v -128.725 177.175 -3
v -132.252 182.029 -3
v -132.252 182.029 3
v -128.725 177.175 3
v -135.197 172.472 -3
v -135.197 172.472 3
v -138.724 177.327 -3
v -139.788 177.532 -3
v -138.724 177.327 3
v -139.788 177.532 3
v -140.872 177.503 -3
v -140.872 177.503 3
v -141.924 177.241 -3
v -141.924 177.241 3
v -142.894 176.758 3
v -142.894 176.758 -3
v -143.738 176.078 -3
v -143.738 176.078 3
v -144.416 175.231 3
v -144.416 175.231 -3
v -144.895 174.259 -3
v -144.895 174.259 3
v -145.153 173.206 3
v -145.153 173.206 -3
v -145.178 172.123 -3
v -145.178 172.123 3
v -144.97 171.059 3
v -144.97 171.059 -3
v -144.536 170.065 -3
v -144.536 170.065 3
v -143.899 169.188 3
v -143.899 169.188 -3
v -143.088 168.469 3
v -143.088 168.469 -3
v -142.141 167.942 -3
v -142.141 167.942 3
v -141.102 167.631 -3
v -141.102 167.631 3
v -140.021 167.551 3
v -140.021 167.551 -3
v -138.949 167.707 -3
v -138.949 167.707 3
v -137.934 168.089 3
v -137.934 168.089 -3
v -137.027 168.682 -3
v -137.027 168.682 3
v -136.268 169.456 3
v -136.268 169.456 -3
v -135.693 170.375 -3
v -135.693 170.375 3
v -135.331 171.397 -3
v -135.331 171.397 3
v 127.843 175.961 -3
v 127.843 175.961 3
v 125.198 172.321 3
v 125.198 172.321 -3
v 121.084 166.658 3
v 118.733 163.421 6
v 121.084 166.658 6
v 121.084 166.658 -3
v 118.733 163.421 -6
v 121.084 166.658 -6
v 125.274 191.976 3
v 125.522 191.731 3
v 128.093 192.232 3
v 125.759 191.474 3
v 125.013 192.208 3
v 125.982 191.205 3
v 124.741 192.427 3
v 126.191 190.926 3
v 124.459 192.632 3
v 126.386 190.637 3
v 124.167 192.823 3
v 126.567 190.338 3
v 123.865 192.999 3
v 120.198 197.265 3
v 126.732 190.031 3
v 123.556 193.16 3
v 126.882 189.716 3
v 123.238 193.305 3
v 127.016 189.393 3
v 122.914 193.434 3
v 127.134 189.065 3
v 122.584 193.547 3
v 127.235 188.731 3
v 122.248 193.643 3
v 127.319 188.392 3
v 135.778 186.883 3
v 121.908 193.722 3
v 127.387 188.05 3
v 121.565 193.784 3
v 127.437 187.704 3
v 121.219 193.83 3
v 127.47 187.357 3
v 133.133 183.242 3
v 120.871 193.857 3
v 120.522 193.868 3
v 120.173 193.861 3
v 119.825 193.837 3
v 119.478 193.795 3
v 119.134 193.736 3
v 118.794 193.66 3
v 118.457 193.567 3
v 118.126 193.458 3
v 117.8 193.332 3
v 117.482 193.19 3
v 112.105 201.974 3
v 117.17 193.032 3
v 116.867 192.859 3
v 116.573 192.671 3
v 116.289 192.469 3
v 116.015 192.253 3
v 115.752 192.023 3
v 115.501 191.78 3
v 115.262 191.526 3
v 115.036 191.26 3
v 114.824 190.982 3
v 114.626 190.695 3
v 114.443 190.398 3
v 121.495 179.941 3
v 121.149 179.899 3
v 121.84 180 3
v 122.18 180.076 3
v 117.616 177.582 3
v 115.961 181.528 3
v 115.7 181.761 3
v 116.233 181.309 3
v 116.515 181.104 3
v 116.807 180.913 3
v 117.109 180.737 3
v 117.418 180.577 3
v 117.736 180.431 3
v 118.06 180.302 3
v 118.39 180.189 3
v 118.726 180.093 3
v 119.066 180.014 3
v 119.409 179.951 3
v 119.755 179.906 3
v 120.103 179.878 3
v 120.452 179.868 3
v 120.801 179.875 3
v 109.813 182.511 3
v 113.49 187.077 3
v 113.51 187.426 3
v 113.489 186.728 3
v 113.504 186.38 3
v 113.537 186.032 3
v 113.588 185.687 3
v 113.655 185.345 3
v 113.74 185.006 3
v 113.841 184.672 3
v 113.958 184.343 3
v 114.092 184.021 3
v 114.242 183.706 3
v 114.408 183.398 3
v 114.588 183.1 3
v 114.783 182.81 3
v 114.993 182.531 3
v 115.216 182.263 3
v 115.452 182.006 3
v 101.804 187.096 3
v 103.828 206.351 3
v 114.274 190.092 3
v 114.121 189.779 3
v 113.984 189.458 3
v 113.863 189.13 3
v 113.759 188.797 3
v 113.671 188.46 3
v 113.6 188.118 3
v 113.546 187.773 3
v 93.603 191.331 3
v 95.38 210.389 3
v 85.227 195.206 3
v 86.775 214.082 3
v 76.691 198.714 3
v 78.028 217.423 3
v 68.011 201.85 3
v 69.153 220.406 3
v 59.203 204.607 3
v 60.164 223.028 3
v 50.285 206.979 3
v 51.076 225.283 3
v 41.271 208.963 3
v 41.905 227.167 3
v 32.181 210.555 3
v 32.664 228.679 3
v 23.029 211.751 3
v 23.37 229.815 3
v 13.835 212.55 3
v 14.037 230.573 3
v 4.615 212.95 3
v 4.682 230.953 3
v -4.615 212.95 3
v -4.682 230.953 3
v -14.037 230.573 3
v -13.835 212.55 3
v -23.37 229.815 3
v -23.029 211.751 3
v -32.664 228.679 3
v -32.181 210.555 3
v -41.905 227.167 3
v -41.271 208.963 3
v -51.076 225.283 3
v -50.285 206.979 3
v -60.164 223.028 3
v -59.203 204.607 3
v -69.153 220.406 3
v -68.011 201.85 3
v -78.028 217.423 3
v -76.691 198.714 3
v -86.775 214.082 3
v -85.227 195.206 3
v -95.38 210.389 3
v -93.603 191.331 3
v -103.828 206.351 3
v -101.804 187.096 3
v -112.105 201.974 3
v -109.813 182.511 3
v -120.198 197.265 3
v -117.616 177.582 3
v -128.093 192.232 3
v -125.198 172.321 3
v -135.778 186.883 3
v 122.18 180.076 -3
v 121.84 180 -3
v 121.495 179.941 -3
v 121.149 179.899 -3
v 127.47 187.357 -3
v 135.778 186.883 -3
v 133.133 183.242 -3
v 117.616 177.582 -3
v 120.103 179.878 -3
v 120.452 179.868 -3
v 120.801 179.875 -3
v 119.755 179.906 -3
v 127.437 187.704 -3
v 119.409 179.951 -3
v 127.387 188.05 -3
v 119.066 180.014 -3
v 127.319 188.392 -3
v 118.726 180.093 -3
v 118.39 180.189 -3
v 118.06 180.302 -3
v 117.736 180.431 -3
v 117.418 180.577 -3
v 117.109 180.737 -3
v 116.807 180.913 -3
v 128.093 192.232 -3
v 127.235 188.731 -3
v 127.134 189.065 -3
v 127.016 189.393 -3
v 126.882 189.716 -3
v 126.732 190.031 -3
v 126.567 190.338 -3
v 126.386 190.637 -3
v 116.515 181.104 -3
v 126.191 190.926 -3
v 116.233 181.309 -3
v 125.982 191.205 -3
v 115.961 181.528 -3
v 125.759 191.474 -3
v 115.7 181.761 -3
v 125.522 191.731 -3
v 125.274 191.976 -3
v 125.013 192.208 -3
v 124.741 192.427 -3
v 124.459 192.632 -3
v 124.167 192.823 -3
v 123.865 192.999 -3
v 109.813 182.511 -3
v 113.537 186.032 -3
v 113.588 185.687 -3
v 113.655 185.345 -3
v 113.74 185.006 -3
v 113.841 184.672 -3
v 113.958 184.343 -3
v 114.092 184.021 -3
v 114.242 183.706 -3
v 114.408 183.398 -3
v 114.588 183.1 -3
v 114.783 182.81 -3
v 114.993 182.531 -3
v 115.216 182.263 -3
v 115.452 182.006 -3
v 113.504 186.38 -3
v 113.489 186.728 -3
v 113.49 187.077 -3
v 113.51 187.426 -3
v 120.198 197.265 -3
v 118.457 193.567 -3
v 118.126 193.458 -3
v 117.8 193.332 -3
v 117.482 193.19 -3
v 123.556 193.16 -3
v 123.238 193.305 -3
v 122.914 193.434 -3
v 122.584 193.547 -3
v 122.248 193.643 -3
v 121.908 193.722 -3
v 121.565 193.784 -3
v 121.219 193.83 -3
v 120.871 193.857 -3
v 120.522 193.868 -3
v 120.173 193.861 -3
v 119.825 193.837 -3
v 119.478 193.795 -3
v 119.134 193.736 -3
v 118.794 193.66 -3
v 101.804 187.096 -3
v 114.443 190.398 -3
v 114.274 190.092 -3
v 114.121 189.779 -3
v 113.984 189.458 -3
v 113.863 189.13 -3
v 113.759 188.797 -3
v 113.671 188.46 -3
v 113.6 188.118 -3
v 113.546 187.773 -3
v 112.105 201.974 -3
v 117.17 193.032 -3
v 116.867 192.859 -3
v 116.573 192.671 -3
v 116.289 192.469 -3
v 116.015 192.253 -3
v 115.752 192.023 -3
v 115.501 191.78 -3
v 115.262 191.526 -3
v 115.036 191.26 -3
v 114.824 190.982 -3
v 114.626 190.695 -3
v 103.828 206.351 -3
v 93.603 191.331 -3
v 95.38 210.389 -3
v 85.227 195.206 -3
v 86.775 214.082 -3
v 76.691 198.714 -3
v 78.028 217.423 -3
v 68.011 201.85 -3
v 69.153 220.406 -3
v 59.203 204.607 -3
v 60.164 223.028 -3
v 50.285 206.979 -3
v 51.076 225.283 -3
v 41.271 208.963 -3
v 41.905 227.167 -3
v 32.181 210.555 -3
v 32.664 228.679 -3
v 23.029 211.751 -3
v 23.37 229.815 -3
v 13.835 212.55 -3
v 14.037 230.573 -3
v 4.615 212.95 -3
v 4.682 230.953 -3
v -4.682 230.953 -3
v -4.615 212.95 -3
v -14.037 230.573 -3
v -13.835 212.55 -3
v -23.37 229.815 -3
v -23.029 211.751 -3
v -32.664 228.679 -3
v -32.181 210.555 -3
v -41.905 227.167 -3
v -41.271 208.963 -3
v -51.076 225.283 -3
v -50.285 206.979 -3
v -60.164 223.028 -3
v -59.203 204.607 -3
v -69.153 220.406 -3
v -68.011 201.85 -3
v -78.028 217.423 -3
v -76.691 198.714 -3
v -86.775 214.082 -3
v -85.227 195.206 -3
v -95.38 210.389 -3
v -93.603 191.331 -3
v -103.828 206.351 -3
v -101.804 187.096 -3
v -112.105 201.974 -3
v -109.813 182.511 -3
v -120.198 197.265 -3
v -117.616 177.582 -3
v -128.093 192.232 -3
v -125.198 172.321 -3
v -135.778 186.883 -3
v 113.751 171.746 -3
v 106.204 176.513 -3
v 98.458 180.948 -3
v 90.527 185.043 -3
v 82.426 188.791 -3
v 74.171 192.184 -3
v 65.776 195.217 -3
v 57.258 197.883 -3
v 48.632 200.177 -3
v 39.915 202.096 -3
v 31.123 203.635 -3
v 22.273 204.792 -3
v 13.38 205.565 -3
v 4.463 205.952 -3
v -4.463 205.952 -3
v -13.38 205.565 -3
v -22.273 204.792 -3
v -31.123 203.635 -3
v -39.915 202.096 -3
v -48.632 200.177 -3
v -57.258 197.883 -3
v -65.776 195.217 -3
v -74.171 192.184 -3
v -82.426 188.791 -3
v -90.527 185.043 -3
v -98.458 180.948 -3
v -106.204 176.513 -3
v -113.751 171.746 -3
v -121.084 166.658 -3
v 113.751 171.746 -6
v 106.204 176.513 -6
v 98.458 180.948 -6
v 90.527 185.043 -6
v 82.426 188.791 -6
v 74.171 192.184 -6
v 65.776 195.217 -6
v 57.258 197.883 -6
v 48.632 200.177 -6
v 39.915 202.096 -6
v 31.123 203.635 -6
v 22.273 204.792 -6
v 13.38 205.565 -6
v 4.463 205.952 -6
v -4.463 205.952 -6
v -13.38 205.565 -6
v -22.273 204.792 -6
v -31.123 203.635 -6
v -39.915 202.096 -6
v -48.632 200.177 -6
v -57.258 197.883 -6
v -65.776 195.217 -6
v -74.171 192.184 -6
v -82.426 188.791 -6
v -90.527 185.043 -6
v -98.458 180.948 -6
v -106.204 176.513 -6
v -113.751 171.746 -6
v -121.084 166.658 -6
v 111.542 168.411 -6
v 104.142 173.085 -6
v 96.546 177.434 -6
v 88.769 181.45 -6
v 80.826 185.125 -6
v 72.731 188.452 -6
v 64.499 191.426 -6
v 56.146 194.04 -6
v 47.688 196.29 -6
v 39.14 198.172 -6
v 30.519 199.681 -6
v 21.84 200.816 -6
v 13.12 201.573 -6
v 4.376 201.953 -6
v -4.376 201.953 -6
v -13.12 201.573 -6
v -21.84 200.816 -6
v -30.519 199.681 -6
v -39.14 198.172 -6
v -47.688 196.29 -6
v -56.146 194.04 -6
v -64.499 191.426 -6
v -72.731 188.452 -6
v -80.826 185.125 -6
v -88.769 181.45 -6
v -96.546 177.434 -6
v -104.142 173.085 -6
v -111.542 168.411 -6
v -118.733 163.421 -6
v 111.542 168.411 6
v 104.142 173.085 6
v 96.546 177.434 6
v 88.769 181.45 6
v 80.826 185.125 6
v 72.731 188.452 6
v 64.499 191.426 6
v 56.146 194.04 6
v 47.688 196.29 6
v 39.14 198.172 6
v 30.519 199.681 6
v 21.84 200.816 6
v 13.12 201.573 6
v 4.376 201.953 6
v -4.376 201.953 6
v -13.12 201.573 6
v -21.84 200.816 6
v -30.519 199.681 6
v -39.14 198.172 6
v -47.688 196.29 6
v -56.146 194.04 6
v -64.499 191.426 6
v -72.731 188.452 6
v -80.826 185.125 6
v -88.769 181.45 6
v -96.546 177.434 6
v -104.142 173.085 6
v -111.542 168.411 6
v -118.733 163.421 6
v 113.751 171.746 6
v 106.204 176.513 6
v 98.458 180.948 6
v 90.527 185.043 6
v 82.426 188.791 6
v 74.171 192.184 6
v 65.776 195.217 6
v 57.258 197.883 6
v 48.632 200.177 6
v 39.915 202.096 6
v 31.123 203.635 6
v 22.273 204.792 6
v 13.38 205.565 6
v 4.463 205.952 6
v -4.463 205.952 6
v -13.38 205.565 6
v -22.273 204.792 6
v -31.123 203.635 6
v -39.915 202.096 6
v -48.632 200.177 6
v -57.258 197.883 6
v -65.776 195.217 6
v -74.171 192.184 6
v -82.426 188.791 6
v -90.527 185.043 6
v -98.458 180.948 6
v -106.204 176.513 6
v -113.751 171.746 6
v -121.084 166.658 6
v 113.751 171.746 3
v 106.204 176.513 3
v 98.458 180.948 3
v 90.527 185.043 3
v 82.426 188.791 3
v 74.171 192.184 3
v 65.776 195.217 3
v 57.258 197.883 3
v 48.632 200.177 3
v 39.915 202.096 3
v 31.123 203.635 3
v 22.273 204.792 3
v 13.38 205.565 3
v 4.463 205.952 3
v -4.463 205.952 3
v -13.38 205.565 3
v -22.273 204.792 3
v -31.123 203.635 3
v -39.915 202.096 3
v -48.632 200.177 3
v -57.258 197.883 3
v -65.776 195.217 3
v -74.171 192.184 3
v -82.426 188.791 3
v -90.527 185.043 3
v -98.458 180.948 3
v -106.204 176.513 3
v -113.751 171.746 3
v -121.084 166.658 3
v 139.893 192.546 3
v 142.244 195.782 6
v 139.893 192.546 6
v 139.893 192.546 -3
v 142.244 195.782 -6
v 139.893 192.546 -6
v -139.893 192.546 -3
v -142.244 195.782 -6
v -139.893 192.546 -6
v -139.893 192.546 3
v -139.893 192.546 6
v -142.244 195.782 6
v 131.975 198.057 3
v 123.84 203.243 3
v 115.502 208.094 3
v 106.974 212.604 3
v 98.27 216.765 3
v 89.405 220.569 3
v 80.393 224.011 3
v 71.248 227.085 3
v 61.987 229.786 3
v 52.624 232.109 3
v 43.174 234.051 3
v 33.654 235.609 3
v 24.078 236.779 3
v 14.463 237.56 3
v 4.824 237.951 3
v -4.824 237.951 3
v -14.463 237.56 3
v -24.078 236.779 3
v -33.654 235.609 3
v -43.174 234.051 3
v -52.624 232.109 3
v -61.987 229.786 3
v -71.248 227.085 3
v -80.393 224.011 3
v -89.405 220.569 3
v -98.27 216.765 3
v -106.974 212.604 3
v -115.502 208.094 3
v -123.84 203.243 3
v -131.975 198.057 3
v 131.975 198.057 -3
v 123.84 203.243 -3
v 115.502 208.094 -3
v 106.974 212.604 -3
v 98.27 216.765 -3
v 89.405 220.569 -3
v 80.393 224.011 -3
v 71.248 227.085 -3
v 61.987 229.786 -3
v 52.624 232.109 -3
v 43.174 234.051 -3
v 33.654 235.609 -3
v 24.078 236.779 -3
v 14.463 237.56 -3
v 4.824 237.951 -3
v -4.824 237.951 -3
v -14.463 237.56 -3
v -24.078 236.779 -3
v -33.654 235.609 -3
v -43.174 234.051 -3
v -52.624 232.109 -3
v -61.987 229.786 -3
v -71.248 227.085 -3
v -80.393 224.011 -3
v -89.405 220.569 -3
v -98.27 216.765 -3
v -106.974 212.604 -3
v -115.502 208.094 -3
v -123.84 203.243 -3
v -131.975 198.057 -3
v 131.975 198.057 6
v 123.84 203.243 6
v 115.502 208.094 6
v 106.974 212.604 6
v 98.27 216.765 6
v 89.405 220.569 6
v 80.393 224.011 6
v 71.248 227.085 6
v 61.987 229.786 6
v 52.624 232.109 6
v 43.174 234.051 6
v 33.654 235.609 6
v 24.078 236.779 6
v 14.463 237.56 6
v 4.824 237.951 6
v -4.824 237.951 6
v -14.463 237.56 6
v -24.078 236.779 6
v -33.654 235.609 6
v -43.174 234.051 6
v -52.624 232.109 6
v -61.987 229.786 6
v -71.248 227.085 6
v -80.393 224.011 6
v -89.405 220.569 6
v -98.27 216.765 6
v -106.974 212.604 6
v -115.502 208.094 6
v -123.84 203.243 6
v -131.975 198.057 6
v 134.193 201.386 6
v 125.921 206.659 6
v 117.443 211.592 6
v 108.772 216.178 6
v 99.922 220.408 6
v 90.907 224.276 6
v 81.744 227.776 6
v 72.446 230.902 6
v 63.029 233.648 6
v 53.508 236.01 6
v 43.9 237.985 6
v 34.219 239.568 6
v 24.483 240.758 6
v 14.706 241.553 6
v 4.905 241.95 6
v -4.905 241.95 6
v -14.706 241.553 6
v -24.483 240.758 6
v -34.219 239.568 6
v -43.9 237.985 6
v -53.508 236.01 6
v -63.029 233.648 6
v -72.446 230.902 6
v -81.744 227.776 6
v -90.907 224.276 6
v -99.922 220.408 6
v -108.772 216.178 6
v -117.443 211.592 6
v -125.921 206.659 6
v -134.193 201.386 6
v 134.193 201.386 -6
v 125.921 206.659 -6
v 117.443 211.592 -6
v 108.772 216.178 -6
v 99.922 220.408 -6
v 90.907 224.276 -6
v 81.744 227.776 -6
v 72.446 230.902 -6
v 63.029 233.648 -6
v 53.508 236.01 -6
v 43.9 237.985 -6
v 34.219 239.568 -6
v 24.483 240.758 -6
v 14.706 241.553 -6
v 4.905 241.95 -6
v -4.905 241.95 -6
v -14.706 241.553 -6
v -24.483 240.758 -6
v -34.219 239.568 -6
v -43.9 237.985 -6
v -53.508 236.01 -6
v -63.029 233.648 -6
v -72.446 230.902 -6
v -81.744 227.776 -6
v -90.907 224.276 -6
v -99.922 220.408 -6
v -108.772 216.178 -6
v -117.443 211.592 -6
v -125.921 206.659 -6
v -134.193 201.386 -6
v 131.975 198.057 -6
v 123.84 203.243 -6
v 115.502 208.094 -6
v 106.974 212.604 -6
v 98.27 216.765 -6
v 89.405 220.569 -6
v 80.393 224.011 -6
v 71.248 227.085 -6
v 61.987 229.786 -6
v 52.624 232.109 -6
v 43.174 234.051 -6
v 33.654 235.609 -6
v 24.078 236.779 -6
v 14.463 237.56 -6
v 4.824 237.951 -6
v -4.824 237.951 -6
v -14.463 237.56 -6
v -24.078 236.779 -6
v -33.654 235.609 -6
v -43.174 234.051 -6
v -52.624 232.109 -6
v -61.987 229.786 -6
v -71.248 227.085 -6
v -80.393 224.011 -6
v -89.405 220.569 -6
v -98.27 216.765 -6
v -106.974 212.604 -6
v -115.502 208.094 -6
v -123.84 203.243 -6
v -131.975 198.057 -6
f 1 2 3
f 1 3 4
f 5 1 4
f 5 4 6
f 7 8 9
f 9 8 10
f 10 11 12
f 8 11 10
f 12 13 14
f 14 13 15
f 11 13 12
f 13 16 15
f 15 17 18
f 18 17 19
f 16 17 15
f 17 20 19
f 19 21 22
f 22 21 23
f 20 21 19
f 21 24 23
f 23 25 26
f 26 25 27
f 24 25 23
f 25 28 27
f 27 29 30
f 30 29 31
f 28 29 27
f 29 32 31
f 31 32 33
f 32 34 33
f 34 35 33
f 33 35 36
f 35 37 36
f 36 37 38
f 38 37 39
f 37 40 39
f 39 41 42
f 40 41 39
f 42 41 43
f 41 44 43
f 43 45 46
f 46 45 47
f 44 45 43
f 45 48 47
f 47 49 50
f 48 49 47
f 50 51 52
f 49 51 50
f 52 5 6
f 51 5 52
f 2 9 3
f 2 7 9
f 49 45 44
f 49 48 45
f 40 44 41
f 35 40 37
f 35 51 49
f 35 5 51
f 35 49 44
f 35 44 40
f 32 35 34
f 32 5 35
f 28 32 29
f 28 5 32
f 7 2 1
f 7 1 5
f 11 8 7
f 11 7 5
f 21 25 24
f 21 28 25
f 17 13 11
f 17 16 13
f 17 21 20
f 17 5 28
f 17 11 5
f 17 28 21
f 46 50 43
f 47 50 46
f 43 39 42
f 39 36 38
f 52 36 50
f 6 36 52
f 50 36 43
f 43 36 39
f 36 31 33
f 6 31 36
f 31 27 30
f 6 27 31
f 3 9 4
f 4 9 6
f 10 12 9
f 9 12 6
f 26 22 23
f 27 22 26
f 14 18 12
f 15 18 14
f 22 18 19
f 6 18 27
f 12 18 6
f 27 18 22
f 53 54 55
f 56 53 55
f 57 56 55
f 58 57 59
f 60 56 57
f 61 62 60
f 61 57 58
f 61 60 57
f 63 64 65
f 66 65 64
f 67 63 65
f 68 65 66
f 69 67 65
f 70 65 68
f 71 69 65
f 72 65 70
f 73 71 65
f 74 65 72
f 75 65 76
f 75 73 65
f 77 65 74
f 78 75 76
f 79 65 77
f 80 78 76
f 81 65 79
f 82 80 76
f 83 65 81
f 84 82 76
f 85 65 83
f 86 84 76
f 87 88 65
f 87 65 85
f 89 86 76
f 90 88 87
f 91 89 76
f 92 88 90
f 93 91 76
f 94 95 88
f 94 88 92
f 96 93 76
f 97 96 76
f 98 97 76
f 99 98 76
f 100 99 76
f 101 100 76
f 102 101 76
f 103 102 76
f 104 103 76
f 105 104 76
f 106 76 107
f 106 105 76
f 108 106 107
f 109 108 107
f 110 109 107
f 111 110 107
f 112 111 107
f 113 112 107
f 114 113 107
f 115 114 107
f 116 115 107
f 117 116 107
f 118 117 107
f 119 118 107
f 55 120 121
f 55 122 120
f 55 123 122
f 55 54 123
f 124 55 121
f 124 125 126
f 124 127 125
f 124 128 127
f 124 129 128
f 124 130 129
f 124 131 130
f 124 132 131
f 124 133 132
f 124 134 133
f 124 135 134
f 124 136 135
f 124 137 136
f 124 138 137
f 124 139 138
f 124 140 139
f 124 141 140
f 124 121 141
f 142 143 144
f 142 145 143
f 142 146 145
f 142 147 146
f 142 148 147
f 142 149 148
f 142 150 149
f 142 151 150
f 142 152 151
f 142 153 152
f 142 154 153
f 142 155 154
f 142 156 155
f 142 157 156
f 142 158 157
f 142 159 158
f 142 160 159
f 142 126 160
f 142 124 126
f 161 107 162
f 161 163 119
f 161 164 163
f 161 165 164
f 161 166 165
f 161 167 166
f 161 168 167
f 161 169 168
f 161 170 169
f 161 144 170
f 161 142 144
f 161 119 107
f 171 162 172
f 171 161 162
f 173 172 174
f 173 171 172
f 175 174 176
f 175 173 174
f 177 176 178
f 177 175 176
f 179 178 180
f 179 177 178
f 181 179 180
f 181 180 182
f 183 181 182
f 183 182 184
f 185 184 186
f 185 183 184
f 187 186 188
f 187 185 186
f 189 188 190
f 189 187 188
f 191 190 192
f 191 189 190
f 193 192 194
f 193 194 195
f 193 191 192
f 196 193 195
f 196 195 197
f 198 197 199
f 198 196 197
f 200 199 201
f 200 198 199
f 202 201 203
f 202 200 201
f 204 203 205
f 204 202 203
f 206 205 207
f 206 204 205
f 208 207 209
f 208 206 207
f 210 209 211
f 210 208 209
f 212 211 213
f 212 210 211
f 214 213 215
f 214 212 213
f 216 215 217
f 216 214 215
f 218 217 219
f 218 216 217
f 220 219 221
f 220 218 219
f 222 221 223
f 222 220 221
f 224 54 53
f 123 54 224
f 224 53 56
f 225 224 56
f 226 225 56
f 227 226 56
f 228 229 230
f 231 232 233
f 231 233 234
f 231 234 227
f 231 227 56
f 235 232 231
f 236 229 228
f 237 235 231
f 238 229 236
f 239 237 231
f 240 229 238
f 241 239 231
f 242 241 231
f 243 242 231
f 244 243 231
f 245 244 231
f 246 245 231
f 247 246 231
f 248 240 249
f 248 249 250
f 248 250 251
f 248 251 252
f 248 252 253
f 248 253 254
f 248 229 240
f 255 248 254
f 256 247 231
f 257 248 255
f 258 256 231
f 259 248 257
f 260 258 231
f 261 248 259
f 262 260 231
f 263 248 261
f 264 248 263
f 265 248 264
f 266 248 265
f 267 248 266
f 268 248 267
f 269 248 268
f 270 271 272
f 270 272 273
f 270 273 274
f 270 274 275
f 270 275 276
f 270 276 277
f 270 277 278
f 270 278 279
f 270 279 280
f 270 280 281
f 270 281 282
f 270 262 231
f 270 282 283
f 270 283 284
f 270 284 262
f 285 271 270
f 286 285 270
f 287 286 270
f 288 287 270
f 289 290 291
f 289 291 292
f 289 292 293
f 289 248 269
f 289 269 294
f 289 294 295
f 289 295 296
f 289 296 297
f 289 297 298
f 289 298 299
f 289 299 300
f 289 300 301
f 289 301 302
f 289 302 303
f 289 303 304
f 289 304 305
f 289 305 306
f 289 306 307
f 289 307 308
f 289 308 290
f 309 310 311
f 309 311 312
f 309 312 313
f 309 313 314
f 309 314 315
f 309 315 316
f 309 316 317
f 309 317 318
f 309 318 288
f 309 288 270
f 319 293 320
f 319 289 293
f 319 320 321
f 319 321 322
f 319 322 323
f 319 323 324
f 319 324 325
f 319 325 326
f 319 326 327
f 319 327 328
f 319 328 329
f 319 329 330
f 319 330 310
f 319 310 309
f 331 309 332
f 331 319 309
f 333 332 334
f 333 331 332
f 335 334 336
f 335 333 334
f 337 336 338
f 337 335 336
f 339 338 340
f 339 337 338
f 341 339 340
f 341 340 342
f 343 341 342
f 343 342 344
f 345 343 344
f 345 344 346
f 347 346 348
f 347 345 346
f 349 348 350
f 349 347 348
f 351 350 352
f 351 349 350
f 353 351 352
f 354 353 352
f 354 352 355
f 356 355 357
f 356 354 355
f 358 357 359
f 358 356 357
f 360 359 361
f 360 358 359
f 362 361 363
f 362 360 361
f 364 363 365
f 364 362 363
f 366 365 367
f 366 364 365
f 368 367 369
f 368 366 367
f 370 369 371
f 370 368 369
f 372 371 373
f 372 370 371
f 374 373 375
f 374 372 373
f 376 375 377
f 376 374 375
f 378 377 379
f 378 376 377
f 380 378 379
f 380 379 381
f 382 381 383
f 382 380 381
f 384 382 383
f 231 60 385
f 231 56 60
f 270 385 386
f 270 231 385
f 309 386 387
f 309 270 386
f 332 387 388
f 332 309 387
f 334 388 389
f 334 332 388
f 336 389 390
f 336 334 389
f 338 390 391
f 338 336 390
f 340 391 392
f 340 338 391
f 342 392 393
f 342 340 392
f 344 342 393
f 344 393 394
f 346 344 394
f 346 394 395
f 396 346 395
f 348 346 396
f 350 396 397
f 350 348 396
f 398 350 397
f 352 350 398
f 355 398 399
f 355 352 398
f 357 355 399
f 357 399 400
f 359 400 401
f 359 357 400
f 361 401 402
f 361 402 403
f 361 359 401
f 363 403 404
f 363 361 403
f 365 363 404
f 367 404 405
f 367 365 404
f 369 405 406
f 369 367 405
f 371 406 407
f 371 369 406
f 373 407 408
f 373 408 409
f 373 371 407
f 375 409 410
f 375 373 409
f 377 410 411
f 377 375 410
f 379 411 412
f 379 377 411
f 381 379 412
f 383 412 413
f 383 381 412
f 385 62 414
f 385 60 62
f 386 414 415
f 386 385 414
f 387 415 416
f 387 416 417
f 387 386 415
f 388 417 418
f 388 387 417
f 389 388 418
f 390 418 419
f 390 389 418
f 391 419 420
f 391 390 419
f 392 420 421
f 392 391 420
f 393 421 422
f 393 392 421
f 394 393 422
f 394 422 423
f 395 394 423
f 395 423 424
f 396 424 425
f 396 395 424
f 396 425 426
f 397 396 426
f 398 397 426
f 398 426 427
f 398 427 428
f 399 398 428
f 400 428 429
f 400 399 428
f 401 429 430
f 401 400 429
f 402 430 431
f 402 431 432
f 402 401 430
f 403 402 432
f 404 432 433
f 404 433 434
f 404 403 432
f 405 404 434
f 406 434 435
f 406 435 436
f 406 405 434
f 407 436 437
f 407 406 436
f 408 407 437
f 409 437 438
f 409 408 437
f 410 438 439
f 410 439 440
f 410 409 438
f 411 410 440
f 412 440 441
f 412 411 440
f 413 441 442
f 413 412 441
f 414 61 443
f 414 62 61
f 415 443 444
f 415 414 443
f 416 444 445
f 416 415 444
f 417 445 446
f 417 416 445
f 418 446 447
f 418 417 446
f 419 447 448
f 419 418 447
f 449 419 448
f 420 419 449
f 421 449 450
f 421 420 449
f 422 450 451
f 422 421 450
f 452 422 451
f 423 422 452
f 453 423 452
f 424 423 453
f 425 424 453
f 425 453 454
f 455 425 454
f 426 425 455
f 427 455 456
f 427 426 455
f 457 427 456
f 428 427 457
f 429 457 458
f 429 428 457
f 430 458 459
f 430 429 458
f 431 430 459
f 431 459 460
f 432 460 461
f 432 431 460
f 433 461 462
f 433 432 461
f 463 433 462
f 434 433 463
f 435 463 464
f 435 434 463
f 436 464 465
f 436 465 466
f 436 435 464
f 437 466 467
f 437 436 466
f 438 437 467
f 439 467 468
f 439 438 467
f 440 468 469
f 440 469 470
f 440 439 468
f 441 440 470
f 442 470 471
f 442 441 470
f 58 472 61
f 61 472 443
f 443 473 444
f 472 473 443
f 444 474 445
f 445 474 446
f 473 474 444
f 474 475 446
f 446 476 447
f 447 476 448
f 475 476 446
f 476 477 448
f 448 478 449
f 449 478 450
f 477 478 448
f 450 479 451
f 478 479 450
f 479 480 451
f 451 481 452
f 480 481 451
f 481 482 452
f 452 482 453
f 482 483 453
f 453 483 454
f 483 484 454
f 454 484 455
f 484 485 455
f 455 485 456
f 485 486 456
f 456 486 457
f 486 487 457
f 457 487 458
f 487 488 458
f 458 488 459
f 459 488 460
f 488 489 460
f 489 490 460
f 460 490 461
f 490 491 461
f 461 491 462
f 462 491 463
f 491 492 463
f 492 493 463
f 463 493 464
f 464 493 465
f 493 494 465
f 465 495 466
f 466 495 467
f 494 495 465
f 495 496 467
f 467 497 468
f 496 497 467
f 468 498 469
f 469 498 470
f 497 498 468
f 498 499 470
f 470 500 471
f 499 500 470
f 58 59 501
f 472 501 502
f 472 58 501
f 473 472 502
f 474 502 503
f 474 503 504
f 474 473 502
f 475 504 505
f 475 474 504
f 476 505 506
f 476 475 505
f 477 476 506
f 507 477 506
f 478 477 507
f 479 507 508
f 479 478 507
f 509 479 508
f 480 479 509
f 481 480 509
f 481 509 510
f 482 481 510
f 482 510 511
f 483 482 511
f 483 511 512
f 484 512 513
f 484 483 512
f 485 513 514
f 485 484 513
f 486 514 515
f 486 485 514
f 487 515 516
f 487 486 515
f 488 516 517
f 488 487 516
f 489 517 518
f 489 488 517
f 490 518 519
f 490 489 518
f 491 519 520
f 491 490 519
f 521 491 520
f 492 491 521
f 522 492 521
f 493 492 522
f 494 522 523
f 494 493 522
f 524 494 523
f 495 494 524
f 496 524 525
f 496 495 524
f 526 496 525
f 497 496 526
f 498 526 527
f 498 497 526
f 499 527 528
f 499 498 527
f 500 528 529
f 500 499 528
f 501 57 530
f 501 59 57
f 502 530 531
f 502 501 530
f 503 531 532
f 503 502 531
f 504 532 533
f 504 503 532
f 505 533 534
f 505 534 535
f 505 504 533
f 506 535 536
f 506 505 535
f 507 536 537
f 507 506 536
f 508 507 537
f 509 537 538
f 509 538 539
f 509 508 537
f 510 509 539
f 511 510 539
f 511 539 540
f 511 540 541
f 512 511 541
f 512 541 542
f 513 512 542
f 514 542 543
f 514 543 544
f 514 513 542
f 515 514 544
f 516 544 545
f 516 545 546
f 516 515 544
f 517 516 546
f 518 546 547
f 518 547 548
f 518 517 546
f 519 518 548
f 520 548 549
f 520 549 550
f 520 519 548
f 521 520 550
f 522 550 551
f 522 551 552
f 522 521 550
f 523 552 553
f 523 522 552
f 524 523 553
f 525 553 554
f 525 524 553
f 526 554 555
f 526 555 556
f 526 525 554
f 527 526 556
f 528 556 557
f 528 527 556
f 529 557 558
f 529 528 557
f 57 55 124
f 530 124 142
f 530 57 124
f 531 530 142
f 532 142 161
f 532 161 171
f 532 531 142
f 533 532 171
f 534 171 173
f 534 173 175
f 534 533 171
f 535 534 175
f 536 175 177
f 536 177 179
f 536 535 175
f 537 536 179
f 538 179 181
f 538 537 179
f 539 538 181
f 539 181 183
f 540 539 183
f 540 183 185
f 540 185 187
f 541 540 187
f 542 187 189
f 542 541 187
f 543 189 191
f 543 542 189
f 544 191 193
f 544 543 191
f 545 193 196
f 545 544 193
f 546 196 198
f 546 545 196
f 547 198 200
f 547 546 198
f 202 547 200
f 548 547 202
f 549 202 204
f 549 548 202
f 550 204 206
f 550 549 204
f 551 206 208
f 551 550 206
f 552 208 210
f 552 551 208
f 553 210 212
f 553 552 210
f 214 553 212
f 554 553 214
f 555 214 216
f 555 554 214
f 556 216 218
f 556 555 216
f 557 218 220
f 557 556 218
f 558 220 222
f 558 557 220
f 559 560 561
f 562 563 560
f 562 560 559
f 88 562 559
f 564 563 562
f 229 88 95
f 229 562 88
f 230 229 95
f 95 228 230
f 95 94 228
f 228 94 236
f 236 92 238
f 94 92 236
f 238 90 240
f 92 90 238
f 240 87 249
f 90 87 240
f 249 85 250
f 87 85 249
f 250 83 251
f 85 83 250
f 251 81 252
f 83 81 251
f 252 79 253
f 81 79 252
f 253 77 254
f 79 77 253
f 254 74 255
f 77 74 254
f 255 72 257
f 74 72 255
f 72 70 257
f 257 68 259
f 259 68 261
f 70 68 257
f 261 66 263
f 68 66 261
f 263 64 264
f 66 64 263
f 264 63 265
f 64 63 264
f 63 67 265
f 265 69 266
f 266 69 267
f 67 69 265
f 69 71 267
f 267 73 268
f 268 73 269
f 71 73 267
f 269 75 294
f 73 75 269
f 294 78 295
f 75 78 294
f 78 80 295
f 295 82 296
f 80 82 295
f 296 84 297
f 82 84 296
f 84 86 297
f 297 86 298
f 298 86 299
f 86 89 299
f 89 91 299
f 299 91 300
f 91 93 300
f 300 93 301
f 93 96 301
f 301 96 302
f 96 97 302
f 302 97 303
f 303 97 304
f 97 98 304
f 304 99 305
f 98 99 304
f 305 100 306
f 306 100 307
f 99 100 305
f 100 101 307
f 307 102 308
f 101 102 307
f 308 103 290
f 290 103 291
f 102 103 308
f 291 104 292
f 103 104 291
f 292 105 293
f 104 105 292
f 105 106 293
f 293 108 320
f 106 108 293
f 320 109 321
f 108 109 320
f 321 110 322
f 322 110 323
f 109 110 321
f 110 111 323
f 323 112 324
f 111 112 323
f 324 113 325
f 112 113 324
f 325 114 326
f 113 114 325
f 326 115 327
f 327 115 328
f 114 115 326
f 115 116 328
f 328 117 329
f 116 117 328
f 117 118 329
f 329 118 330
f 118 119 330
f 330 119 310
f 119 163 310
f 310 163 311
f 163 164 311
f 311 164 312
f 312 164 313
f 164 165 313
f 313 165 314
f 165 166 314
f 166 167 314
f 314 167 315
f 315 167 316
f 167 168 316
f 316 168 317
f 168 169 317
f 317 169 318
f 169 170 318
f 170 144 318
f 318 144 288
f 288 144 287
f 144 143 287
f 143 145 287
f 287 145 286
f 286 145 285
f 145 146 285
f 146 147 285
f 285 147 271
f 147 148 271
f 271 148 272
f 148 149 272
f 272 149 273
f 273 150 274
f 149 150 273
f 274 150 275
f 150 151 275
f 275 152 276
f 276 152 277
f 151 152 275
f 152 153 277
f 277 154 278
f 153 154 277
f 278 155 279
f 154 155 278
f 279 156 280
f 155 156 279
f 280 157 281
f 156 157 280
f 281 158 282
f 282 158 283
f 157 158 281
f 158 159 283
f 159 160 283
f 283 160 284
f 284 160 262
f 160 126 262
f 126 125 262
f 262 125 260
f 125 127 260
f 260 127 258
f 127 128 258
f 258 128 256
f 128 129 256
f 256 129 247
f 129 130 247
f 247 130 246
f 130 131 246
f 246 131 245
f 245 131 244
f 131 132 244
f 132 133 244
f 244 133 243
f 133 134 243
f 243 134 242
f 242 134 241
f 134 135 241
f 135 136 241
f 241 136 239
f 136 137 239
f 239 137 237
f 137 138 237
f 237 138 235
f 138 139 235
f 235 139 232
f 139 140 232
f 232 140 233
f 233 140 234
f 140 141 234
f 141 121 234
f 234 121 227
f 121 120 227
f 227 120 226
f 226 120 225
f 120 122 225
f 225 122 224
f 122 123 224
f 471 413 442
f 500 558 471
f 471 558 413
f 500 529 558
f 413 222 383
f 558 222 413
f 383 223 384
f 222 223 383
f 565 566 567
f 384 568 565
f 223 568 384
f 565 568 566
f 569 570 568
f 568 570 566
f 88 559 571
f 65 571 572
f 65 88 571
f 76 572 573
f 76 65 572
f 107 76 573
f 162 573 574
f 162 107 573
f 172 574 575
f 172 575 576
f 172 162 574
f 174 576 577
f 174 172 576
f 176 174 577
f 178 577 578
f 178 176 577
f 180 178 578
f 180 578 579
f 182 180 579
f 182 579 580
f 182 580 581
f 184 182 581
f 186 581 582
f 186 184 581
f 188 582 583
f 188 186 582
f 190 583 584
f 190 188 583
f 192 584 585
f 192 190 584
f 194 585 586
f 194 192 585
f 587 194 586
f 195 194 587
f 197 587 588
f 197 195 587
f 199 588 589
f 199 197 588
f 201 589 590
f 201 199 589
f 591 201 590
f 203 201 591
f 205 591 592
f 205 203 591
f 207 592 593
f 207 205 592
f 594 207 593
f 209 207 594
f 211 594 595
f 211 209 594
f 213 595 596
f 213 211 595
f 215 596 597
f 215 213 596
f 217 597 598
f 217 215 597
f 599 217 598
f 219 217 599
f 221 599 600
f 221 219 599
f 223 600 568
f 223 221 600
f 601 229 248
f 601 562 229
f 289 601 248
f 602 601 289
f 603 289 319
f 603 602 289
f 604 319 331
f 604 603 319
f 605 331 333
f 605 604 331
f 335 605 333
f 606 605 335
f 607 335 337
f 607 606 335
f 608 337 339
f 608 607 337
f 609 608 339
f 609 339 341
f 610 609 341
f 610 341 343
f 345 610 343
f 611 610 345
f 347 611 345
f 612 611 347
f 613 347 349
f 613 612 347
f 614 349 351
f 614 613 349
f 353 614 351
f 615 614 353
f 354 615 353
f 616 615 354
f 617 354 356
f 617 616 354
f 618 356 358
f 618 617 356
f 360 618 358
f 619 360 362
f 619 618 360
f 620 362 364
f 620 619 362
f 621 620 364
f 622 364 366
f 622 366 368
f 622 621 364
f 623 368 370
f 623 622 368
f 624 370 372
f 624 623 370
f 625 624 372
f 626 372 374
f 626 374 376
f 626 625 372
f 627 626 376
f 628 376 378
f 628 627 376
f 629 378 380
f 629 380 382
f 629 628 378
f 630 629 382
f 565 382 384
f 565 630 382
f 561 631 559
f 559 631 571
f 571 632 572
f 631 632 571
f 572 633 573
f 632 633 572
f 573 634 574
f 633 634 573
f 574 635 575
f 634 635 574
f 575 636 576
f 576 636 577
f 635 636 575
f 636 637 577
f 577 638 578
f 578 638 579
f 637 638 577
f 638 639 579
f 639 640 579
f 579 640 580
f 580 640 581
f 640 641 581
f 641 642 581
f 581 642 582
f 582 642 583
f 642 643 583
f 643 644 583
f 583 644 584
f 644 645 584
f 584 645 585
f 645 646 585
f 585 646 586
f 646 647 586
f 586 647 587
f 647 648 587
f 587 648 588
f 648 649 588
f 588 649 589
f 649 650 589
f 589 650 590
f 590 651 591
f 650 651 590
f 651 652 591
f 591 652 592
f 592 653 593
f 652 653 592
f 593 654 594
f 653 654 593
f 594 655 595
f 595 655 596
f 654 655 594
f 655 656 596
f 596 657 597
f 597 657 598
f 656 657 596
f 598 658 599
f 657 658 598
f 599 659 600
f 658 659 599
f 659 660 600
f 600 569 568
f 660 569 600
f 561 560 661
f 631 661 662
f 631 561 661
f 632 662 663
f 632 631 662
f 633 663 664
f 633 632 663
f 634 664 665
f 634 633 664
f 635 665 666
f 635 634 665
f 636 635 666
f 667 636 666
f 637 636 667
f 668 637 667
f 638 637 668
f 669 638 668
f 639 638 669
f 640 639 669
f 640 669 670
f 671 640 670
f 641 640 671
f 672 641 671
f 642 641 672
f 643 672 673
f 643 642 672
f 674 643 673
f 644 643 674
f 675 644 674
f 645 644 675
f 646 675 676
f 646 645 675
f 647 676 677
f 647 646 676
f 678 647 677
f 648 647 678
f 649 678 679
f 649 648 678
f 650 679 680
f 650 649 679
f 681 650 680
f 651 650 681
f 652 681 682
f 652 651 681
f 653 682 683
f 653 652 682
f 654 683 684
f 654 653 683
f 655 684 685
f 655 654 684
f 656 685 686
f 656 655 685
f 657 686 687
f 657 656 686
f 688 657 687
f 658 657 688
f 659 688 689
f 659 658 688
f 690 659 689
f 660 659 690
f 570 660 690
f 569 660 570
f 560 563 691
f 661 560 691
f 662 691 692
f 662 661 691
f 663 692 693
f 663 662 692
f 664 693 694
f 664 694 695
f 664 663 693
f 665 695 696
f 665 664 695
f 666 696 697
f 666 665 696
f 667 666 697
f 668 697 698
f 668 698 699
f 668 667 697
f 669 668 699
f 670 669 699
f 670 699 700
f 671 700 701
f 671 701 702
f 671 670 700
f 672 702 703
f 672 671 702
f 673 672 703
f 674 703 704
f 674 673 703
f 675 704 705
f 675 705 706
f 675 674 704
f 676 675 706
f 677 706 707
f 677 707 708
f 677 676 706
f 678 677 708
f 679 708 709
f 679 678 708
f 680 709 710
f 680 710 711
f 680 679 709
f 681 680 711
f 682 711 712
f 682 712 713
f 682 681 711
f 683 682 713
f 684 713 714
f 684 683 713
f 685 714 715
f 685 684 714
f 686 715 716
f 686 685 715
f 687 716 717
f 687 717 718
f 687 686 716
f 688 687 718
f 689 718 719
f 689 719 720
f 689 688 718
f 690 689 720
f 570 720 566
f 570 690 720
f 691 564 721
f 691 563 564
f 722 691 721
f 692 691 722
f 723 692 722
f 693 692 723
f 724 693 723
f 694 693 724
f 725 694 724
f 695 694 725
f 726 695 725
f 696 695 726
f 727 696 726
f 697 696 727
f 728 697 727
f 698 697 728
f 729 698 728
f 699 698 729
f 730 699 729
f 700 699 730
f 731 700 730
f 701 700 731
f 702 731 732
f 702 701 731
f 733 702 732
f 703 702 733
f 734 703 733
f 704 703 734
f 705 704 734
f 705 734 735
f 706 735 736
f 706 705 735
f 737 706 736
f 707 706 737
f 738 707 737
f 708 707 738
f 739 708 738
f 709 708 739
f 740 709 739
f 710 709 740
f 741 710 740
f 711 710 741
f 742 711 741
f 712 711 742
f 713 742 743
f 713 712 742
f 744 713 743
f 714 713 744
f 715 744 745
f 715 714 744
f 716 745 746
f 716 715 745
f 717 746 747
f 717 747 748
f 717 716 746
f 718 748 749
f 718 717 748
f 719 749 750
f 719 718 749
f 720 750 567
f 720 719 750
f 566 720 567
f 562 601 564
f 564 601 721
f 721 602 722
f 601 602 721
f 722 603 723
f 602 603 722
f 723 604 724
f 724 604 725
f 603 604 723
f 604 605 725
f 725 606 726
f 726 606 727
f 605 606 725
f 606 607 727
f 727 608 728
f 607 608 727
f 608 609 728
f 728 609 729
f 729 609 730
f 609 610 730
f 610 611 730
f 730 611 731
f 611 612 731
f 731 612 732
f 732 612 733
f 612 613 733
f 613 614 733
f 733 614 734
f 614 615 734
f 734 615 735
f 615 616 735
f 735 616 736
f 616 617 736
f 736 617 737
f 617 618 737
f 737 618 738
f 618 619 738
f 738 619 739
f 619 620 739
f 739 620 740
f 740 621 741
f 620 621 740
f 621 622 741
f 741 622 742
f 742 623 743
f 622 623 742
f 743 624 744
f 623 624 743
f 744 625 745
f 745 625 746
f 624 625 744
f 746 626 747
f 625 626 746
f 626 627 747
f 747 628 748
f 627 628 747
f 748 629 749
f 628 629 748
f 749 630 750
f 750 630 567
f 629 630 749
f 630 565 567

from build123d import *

# Parameters (mm, degrees)
POCKET_DEPTH = 9.001
PAD_DEPTH    = 3


with BuildPart() as body:
    # AdditivePipe: sweep along a path in Sketch
    with BuildLine(Plane.XY) as additivepipe_path:
        ThreePointArc((130.488326, 179.601773), (0, 222), (-130.488326, 179.601773))
    # Sketch002 (on DatumPlane) → AdditivePipe (sweep)
    with BuildSketch(Plane(origin=(-130.488326, 179.601773, 0), x_dir=(-0.587785, 0.809017, 0), z_dir=(0.809017, 0.587785, 0))):
        Polygon((-20, 6), (-20, -6), (-16, -6), (-16, -3), (-9, -3), (9, -3), (16, -3), (16, -6), (20, -6), (20, 6), (16, 6), (16, 3), (9, 3), (-9, 3), (-16, 3), (-16, 6), align=None)
    sweep(path=additivepipe_path.line)

    # Sketch004 (on Face18 of AdditivePipe) → Pocket (cut, through all)
    with BuildSketch(Plane(origin=(-130.488326, 179.601773, 3), x_dir=(0.587785, -0.809017, 0), z_dir=(0, 0, 1))):
        with BuildLine():
            Line((152.007651, 215.414301), (154.788804, 206.854792))
            Line((154.788804, 206.854792), (148.131408, 204.691673))
            ThreePointArc((145.350255, 213.251182), (134.983964, 205.15139), (148.131408, 204.691673))
            Line((152.007651, 215.414301), (145.350255, 213.251182))
        make_face()
    extrude(amount=-POCKET_DEPTH, mode=Mode.SUBTRACT)


with BuildPart() as body001:
    # Sketch005 → Pad (new body, symmetric)
    with BuildSketch(Plane.XY):
        with BuildLine():
            Line((-132.251682, 182.028824), (-128.72497, 177.174722))
            Line((-128.72497, 177.174722), (-135.197106, 172.47244))
            ThreePointArc((-138.723818, 177.326542), (-144.241615, 169.609423), (-135.197106, 172.47244))
            Line((-132.251682, 182.028824), (-138.723818, 177.326542))
        make_face()
    extrude(amount=PAD_DEPTH, both=True)


solid = Compound([body.part, body001.part])
